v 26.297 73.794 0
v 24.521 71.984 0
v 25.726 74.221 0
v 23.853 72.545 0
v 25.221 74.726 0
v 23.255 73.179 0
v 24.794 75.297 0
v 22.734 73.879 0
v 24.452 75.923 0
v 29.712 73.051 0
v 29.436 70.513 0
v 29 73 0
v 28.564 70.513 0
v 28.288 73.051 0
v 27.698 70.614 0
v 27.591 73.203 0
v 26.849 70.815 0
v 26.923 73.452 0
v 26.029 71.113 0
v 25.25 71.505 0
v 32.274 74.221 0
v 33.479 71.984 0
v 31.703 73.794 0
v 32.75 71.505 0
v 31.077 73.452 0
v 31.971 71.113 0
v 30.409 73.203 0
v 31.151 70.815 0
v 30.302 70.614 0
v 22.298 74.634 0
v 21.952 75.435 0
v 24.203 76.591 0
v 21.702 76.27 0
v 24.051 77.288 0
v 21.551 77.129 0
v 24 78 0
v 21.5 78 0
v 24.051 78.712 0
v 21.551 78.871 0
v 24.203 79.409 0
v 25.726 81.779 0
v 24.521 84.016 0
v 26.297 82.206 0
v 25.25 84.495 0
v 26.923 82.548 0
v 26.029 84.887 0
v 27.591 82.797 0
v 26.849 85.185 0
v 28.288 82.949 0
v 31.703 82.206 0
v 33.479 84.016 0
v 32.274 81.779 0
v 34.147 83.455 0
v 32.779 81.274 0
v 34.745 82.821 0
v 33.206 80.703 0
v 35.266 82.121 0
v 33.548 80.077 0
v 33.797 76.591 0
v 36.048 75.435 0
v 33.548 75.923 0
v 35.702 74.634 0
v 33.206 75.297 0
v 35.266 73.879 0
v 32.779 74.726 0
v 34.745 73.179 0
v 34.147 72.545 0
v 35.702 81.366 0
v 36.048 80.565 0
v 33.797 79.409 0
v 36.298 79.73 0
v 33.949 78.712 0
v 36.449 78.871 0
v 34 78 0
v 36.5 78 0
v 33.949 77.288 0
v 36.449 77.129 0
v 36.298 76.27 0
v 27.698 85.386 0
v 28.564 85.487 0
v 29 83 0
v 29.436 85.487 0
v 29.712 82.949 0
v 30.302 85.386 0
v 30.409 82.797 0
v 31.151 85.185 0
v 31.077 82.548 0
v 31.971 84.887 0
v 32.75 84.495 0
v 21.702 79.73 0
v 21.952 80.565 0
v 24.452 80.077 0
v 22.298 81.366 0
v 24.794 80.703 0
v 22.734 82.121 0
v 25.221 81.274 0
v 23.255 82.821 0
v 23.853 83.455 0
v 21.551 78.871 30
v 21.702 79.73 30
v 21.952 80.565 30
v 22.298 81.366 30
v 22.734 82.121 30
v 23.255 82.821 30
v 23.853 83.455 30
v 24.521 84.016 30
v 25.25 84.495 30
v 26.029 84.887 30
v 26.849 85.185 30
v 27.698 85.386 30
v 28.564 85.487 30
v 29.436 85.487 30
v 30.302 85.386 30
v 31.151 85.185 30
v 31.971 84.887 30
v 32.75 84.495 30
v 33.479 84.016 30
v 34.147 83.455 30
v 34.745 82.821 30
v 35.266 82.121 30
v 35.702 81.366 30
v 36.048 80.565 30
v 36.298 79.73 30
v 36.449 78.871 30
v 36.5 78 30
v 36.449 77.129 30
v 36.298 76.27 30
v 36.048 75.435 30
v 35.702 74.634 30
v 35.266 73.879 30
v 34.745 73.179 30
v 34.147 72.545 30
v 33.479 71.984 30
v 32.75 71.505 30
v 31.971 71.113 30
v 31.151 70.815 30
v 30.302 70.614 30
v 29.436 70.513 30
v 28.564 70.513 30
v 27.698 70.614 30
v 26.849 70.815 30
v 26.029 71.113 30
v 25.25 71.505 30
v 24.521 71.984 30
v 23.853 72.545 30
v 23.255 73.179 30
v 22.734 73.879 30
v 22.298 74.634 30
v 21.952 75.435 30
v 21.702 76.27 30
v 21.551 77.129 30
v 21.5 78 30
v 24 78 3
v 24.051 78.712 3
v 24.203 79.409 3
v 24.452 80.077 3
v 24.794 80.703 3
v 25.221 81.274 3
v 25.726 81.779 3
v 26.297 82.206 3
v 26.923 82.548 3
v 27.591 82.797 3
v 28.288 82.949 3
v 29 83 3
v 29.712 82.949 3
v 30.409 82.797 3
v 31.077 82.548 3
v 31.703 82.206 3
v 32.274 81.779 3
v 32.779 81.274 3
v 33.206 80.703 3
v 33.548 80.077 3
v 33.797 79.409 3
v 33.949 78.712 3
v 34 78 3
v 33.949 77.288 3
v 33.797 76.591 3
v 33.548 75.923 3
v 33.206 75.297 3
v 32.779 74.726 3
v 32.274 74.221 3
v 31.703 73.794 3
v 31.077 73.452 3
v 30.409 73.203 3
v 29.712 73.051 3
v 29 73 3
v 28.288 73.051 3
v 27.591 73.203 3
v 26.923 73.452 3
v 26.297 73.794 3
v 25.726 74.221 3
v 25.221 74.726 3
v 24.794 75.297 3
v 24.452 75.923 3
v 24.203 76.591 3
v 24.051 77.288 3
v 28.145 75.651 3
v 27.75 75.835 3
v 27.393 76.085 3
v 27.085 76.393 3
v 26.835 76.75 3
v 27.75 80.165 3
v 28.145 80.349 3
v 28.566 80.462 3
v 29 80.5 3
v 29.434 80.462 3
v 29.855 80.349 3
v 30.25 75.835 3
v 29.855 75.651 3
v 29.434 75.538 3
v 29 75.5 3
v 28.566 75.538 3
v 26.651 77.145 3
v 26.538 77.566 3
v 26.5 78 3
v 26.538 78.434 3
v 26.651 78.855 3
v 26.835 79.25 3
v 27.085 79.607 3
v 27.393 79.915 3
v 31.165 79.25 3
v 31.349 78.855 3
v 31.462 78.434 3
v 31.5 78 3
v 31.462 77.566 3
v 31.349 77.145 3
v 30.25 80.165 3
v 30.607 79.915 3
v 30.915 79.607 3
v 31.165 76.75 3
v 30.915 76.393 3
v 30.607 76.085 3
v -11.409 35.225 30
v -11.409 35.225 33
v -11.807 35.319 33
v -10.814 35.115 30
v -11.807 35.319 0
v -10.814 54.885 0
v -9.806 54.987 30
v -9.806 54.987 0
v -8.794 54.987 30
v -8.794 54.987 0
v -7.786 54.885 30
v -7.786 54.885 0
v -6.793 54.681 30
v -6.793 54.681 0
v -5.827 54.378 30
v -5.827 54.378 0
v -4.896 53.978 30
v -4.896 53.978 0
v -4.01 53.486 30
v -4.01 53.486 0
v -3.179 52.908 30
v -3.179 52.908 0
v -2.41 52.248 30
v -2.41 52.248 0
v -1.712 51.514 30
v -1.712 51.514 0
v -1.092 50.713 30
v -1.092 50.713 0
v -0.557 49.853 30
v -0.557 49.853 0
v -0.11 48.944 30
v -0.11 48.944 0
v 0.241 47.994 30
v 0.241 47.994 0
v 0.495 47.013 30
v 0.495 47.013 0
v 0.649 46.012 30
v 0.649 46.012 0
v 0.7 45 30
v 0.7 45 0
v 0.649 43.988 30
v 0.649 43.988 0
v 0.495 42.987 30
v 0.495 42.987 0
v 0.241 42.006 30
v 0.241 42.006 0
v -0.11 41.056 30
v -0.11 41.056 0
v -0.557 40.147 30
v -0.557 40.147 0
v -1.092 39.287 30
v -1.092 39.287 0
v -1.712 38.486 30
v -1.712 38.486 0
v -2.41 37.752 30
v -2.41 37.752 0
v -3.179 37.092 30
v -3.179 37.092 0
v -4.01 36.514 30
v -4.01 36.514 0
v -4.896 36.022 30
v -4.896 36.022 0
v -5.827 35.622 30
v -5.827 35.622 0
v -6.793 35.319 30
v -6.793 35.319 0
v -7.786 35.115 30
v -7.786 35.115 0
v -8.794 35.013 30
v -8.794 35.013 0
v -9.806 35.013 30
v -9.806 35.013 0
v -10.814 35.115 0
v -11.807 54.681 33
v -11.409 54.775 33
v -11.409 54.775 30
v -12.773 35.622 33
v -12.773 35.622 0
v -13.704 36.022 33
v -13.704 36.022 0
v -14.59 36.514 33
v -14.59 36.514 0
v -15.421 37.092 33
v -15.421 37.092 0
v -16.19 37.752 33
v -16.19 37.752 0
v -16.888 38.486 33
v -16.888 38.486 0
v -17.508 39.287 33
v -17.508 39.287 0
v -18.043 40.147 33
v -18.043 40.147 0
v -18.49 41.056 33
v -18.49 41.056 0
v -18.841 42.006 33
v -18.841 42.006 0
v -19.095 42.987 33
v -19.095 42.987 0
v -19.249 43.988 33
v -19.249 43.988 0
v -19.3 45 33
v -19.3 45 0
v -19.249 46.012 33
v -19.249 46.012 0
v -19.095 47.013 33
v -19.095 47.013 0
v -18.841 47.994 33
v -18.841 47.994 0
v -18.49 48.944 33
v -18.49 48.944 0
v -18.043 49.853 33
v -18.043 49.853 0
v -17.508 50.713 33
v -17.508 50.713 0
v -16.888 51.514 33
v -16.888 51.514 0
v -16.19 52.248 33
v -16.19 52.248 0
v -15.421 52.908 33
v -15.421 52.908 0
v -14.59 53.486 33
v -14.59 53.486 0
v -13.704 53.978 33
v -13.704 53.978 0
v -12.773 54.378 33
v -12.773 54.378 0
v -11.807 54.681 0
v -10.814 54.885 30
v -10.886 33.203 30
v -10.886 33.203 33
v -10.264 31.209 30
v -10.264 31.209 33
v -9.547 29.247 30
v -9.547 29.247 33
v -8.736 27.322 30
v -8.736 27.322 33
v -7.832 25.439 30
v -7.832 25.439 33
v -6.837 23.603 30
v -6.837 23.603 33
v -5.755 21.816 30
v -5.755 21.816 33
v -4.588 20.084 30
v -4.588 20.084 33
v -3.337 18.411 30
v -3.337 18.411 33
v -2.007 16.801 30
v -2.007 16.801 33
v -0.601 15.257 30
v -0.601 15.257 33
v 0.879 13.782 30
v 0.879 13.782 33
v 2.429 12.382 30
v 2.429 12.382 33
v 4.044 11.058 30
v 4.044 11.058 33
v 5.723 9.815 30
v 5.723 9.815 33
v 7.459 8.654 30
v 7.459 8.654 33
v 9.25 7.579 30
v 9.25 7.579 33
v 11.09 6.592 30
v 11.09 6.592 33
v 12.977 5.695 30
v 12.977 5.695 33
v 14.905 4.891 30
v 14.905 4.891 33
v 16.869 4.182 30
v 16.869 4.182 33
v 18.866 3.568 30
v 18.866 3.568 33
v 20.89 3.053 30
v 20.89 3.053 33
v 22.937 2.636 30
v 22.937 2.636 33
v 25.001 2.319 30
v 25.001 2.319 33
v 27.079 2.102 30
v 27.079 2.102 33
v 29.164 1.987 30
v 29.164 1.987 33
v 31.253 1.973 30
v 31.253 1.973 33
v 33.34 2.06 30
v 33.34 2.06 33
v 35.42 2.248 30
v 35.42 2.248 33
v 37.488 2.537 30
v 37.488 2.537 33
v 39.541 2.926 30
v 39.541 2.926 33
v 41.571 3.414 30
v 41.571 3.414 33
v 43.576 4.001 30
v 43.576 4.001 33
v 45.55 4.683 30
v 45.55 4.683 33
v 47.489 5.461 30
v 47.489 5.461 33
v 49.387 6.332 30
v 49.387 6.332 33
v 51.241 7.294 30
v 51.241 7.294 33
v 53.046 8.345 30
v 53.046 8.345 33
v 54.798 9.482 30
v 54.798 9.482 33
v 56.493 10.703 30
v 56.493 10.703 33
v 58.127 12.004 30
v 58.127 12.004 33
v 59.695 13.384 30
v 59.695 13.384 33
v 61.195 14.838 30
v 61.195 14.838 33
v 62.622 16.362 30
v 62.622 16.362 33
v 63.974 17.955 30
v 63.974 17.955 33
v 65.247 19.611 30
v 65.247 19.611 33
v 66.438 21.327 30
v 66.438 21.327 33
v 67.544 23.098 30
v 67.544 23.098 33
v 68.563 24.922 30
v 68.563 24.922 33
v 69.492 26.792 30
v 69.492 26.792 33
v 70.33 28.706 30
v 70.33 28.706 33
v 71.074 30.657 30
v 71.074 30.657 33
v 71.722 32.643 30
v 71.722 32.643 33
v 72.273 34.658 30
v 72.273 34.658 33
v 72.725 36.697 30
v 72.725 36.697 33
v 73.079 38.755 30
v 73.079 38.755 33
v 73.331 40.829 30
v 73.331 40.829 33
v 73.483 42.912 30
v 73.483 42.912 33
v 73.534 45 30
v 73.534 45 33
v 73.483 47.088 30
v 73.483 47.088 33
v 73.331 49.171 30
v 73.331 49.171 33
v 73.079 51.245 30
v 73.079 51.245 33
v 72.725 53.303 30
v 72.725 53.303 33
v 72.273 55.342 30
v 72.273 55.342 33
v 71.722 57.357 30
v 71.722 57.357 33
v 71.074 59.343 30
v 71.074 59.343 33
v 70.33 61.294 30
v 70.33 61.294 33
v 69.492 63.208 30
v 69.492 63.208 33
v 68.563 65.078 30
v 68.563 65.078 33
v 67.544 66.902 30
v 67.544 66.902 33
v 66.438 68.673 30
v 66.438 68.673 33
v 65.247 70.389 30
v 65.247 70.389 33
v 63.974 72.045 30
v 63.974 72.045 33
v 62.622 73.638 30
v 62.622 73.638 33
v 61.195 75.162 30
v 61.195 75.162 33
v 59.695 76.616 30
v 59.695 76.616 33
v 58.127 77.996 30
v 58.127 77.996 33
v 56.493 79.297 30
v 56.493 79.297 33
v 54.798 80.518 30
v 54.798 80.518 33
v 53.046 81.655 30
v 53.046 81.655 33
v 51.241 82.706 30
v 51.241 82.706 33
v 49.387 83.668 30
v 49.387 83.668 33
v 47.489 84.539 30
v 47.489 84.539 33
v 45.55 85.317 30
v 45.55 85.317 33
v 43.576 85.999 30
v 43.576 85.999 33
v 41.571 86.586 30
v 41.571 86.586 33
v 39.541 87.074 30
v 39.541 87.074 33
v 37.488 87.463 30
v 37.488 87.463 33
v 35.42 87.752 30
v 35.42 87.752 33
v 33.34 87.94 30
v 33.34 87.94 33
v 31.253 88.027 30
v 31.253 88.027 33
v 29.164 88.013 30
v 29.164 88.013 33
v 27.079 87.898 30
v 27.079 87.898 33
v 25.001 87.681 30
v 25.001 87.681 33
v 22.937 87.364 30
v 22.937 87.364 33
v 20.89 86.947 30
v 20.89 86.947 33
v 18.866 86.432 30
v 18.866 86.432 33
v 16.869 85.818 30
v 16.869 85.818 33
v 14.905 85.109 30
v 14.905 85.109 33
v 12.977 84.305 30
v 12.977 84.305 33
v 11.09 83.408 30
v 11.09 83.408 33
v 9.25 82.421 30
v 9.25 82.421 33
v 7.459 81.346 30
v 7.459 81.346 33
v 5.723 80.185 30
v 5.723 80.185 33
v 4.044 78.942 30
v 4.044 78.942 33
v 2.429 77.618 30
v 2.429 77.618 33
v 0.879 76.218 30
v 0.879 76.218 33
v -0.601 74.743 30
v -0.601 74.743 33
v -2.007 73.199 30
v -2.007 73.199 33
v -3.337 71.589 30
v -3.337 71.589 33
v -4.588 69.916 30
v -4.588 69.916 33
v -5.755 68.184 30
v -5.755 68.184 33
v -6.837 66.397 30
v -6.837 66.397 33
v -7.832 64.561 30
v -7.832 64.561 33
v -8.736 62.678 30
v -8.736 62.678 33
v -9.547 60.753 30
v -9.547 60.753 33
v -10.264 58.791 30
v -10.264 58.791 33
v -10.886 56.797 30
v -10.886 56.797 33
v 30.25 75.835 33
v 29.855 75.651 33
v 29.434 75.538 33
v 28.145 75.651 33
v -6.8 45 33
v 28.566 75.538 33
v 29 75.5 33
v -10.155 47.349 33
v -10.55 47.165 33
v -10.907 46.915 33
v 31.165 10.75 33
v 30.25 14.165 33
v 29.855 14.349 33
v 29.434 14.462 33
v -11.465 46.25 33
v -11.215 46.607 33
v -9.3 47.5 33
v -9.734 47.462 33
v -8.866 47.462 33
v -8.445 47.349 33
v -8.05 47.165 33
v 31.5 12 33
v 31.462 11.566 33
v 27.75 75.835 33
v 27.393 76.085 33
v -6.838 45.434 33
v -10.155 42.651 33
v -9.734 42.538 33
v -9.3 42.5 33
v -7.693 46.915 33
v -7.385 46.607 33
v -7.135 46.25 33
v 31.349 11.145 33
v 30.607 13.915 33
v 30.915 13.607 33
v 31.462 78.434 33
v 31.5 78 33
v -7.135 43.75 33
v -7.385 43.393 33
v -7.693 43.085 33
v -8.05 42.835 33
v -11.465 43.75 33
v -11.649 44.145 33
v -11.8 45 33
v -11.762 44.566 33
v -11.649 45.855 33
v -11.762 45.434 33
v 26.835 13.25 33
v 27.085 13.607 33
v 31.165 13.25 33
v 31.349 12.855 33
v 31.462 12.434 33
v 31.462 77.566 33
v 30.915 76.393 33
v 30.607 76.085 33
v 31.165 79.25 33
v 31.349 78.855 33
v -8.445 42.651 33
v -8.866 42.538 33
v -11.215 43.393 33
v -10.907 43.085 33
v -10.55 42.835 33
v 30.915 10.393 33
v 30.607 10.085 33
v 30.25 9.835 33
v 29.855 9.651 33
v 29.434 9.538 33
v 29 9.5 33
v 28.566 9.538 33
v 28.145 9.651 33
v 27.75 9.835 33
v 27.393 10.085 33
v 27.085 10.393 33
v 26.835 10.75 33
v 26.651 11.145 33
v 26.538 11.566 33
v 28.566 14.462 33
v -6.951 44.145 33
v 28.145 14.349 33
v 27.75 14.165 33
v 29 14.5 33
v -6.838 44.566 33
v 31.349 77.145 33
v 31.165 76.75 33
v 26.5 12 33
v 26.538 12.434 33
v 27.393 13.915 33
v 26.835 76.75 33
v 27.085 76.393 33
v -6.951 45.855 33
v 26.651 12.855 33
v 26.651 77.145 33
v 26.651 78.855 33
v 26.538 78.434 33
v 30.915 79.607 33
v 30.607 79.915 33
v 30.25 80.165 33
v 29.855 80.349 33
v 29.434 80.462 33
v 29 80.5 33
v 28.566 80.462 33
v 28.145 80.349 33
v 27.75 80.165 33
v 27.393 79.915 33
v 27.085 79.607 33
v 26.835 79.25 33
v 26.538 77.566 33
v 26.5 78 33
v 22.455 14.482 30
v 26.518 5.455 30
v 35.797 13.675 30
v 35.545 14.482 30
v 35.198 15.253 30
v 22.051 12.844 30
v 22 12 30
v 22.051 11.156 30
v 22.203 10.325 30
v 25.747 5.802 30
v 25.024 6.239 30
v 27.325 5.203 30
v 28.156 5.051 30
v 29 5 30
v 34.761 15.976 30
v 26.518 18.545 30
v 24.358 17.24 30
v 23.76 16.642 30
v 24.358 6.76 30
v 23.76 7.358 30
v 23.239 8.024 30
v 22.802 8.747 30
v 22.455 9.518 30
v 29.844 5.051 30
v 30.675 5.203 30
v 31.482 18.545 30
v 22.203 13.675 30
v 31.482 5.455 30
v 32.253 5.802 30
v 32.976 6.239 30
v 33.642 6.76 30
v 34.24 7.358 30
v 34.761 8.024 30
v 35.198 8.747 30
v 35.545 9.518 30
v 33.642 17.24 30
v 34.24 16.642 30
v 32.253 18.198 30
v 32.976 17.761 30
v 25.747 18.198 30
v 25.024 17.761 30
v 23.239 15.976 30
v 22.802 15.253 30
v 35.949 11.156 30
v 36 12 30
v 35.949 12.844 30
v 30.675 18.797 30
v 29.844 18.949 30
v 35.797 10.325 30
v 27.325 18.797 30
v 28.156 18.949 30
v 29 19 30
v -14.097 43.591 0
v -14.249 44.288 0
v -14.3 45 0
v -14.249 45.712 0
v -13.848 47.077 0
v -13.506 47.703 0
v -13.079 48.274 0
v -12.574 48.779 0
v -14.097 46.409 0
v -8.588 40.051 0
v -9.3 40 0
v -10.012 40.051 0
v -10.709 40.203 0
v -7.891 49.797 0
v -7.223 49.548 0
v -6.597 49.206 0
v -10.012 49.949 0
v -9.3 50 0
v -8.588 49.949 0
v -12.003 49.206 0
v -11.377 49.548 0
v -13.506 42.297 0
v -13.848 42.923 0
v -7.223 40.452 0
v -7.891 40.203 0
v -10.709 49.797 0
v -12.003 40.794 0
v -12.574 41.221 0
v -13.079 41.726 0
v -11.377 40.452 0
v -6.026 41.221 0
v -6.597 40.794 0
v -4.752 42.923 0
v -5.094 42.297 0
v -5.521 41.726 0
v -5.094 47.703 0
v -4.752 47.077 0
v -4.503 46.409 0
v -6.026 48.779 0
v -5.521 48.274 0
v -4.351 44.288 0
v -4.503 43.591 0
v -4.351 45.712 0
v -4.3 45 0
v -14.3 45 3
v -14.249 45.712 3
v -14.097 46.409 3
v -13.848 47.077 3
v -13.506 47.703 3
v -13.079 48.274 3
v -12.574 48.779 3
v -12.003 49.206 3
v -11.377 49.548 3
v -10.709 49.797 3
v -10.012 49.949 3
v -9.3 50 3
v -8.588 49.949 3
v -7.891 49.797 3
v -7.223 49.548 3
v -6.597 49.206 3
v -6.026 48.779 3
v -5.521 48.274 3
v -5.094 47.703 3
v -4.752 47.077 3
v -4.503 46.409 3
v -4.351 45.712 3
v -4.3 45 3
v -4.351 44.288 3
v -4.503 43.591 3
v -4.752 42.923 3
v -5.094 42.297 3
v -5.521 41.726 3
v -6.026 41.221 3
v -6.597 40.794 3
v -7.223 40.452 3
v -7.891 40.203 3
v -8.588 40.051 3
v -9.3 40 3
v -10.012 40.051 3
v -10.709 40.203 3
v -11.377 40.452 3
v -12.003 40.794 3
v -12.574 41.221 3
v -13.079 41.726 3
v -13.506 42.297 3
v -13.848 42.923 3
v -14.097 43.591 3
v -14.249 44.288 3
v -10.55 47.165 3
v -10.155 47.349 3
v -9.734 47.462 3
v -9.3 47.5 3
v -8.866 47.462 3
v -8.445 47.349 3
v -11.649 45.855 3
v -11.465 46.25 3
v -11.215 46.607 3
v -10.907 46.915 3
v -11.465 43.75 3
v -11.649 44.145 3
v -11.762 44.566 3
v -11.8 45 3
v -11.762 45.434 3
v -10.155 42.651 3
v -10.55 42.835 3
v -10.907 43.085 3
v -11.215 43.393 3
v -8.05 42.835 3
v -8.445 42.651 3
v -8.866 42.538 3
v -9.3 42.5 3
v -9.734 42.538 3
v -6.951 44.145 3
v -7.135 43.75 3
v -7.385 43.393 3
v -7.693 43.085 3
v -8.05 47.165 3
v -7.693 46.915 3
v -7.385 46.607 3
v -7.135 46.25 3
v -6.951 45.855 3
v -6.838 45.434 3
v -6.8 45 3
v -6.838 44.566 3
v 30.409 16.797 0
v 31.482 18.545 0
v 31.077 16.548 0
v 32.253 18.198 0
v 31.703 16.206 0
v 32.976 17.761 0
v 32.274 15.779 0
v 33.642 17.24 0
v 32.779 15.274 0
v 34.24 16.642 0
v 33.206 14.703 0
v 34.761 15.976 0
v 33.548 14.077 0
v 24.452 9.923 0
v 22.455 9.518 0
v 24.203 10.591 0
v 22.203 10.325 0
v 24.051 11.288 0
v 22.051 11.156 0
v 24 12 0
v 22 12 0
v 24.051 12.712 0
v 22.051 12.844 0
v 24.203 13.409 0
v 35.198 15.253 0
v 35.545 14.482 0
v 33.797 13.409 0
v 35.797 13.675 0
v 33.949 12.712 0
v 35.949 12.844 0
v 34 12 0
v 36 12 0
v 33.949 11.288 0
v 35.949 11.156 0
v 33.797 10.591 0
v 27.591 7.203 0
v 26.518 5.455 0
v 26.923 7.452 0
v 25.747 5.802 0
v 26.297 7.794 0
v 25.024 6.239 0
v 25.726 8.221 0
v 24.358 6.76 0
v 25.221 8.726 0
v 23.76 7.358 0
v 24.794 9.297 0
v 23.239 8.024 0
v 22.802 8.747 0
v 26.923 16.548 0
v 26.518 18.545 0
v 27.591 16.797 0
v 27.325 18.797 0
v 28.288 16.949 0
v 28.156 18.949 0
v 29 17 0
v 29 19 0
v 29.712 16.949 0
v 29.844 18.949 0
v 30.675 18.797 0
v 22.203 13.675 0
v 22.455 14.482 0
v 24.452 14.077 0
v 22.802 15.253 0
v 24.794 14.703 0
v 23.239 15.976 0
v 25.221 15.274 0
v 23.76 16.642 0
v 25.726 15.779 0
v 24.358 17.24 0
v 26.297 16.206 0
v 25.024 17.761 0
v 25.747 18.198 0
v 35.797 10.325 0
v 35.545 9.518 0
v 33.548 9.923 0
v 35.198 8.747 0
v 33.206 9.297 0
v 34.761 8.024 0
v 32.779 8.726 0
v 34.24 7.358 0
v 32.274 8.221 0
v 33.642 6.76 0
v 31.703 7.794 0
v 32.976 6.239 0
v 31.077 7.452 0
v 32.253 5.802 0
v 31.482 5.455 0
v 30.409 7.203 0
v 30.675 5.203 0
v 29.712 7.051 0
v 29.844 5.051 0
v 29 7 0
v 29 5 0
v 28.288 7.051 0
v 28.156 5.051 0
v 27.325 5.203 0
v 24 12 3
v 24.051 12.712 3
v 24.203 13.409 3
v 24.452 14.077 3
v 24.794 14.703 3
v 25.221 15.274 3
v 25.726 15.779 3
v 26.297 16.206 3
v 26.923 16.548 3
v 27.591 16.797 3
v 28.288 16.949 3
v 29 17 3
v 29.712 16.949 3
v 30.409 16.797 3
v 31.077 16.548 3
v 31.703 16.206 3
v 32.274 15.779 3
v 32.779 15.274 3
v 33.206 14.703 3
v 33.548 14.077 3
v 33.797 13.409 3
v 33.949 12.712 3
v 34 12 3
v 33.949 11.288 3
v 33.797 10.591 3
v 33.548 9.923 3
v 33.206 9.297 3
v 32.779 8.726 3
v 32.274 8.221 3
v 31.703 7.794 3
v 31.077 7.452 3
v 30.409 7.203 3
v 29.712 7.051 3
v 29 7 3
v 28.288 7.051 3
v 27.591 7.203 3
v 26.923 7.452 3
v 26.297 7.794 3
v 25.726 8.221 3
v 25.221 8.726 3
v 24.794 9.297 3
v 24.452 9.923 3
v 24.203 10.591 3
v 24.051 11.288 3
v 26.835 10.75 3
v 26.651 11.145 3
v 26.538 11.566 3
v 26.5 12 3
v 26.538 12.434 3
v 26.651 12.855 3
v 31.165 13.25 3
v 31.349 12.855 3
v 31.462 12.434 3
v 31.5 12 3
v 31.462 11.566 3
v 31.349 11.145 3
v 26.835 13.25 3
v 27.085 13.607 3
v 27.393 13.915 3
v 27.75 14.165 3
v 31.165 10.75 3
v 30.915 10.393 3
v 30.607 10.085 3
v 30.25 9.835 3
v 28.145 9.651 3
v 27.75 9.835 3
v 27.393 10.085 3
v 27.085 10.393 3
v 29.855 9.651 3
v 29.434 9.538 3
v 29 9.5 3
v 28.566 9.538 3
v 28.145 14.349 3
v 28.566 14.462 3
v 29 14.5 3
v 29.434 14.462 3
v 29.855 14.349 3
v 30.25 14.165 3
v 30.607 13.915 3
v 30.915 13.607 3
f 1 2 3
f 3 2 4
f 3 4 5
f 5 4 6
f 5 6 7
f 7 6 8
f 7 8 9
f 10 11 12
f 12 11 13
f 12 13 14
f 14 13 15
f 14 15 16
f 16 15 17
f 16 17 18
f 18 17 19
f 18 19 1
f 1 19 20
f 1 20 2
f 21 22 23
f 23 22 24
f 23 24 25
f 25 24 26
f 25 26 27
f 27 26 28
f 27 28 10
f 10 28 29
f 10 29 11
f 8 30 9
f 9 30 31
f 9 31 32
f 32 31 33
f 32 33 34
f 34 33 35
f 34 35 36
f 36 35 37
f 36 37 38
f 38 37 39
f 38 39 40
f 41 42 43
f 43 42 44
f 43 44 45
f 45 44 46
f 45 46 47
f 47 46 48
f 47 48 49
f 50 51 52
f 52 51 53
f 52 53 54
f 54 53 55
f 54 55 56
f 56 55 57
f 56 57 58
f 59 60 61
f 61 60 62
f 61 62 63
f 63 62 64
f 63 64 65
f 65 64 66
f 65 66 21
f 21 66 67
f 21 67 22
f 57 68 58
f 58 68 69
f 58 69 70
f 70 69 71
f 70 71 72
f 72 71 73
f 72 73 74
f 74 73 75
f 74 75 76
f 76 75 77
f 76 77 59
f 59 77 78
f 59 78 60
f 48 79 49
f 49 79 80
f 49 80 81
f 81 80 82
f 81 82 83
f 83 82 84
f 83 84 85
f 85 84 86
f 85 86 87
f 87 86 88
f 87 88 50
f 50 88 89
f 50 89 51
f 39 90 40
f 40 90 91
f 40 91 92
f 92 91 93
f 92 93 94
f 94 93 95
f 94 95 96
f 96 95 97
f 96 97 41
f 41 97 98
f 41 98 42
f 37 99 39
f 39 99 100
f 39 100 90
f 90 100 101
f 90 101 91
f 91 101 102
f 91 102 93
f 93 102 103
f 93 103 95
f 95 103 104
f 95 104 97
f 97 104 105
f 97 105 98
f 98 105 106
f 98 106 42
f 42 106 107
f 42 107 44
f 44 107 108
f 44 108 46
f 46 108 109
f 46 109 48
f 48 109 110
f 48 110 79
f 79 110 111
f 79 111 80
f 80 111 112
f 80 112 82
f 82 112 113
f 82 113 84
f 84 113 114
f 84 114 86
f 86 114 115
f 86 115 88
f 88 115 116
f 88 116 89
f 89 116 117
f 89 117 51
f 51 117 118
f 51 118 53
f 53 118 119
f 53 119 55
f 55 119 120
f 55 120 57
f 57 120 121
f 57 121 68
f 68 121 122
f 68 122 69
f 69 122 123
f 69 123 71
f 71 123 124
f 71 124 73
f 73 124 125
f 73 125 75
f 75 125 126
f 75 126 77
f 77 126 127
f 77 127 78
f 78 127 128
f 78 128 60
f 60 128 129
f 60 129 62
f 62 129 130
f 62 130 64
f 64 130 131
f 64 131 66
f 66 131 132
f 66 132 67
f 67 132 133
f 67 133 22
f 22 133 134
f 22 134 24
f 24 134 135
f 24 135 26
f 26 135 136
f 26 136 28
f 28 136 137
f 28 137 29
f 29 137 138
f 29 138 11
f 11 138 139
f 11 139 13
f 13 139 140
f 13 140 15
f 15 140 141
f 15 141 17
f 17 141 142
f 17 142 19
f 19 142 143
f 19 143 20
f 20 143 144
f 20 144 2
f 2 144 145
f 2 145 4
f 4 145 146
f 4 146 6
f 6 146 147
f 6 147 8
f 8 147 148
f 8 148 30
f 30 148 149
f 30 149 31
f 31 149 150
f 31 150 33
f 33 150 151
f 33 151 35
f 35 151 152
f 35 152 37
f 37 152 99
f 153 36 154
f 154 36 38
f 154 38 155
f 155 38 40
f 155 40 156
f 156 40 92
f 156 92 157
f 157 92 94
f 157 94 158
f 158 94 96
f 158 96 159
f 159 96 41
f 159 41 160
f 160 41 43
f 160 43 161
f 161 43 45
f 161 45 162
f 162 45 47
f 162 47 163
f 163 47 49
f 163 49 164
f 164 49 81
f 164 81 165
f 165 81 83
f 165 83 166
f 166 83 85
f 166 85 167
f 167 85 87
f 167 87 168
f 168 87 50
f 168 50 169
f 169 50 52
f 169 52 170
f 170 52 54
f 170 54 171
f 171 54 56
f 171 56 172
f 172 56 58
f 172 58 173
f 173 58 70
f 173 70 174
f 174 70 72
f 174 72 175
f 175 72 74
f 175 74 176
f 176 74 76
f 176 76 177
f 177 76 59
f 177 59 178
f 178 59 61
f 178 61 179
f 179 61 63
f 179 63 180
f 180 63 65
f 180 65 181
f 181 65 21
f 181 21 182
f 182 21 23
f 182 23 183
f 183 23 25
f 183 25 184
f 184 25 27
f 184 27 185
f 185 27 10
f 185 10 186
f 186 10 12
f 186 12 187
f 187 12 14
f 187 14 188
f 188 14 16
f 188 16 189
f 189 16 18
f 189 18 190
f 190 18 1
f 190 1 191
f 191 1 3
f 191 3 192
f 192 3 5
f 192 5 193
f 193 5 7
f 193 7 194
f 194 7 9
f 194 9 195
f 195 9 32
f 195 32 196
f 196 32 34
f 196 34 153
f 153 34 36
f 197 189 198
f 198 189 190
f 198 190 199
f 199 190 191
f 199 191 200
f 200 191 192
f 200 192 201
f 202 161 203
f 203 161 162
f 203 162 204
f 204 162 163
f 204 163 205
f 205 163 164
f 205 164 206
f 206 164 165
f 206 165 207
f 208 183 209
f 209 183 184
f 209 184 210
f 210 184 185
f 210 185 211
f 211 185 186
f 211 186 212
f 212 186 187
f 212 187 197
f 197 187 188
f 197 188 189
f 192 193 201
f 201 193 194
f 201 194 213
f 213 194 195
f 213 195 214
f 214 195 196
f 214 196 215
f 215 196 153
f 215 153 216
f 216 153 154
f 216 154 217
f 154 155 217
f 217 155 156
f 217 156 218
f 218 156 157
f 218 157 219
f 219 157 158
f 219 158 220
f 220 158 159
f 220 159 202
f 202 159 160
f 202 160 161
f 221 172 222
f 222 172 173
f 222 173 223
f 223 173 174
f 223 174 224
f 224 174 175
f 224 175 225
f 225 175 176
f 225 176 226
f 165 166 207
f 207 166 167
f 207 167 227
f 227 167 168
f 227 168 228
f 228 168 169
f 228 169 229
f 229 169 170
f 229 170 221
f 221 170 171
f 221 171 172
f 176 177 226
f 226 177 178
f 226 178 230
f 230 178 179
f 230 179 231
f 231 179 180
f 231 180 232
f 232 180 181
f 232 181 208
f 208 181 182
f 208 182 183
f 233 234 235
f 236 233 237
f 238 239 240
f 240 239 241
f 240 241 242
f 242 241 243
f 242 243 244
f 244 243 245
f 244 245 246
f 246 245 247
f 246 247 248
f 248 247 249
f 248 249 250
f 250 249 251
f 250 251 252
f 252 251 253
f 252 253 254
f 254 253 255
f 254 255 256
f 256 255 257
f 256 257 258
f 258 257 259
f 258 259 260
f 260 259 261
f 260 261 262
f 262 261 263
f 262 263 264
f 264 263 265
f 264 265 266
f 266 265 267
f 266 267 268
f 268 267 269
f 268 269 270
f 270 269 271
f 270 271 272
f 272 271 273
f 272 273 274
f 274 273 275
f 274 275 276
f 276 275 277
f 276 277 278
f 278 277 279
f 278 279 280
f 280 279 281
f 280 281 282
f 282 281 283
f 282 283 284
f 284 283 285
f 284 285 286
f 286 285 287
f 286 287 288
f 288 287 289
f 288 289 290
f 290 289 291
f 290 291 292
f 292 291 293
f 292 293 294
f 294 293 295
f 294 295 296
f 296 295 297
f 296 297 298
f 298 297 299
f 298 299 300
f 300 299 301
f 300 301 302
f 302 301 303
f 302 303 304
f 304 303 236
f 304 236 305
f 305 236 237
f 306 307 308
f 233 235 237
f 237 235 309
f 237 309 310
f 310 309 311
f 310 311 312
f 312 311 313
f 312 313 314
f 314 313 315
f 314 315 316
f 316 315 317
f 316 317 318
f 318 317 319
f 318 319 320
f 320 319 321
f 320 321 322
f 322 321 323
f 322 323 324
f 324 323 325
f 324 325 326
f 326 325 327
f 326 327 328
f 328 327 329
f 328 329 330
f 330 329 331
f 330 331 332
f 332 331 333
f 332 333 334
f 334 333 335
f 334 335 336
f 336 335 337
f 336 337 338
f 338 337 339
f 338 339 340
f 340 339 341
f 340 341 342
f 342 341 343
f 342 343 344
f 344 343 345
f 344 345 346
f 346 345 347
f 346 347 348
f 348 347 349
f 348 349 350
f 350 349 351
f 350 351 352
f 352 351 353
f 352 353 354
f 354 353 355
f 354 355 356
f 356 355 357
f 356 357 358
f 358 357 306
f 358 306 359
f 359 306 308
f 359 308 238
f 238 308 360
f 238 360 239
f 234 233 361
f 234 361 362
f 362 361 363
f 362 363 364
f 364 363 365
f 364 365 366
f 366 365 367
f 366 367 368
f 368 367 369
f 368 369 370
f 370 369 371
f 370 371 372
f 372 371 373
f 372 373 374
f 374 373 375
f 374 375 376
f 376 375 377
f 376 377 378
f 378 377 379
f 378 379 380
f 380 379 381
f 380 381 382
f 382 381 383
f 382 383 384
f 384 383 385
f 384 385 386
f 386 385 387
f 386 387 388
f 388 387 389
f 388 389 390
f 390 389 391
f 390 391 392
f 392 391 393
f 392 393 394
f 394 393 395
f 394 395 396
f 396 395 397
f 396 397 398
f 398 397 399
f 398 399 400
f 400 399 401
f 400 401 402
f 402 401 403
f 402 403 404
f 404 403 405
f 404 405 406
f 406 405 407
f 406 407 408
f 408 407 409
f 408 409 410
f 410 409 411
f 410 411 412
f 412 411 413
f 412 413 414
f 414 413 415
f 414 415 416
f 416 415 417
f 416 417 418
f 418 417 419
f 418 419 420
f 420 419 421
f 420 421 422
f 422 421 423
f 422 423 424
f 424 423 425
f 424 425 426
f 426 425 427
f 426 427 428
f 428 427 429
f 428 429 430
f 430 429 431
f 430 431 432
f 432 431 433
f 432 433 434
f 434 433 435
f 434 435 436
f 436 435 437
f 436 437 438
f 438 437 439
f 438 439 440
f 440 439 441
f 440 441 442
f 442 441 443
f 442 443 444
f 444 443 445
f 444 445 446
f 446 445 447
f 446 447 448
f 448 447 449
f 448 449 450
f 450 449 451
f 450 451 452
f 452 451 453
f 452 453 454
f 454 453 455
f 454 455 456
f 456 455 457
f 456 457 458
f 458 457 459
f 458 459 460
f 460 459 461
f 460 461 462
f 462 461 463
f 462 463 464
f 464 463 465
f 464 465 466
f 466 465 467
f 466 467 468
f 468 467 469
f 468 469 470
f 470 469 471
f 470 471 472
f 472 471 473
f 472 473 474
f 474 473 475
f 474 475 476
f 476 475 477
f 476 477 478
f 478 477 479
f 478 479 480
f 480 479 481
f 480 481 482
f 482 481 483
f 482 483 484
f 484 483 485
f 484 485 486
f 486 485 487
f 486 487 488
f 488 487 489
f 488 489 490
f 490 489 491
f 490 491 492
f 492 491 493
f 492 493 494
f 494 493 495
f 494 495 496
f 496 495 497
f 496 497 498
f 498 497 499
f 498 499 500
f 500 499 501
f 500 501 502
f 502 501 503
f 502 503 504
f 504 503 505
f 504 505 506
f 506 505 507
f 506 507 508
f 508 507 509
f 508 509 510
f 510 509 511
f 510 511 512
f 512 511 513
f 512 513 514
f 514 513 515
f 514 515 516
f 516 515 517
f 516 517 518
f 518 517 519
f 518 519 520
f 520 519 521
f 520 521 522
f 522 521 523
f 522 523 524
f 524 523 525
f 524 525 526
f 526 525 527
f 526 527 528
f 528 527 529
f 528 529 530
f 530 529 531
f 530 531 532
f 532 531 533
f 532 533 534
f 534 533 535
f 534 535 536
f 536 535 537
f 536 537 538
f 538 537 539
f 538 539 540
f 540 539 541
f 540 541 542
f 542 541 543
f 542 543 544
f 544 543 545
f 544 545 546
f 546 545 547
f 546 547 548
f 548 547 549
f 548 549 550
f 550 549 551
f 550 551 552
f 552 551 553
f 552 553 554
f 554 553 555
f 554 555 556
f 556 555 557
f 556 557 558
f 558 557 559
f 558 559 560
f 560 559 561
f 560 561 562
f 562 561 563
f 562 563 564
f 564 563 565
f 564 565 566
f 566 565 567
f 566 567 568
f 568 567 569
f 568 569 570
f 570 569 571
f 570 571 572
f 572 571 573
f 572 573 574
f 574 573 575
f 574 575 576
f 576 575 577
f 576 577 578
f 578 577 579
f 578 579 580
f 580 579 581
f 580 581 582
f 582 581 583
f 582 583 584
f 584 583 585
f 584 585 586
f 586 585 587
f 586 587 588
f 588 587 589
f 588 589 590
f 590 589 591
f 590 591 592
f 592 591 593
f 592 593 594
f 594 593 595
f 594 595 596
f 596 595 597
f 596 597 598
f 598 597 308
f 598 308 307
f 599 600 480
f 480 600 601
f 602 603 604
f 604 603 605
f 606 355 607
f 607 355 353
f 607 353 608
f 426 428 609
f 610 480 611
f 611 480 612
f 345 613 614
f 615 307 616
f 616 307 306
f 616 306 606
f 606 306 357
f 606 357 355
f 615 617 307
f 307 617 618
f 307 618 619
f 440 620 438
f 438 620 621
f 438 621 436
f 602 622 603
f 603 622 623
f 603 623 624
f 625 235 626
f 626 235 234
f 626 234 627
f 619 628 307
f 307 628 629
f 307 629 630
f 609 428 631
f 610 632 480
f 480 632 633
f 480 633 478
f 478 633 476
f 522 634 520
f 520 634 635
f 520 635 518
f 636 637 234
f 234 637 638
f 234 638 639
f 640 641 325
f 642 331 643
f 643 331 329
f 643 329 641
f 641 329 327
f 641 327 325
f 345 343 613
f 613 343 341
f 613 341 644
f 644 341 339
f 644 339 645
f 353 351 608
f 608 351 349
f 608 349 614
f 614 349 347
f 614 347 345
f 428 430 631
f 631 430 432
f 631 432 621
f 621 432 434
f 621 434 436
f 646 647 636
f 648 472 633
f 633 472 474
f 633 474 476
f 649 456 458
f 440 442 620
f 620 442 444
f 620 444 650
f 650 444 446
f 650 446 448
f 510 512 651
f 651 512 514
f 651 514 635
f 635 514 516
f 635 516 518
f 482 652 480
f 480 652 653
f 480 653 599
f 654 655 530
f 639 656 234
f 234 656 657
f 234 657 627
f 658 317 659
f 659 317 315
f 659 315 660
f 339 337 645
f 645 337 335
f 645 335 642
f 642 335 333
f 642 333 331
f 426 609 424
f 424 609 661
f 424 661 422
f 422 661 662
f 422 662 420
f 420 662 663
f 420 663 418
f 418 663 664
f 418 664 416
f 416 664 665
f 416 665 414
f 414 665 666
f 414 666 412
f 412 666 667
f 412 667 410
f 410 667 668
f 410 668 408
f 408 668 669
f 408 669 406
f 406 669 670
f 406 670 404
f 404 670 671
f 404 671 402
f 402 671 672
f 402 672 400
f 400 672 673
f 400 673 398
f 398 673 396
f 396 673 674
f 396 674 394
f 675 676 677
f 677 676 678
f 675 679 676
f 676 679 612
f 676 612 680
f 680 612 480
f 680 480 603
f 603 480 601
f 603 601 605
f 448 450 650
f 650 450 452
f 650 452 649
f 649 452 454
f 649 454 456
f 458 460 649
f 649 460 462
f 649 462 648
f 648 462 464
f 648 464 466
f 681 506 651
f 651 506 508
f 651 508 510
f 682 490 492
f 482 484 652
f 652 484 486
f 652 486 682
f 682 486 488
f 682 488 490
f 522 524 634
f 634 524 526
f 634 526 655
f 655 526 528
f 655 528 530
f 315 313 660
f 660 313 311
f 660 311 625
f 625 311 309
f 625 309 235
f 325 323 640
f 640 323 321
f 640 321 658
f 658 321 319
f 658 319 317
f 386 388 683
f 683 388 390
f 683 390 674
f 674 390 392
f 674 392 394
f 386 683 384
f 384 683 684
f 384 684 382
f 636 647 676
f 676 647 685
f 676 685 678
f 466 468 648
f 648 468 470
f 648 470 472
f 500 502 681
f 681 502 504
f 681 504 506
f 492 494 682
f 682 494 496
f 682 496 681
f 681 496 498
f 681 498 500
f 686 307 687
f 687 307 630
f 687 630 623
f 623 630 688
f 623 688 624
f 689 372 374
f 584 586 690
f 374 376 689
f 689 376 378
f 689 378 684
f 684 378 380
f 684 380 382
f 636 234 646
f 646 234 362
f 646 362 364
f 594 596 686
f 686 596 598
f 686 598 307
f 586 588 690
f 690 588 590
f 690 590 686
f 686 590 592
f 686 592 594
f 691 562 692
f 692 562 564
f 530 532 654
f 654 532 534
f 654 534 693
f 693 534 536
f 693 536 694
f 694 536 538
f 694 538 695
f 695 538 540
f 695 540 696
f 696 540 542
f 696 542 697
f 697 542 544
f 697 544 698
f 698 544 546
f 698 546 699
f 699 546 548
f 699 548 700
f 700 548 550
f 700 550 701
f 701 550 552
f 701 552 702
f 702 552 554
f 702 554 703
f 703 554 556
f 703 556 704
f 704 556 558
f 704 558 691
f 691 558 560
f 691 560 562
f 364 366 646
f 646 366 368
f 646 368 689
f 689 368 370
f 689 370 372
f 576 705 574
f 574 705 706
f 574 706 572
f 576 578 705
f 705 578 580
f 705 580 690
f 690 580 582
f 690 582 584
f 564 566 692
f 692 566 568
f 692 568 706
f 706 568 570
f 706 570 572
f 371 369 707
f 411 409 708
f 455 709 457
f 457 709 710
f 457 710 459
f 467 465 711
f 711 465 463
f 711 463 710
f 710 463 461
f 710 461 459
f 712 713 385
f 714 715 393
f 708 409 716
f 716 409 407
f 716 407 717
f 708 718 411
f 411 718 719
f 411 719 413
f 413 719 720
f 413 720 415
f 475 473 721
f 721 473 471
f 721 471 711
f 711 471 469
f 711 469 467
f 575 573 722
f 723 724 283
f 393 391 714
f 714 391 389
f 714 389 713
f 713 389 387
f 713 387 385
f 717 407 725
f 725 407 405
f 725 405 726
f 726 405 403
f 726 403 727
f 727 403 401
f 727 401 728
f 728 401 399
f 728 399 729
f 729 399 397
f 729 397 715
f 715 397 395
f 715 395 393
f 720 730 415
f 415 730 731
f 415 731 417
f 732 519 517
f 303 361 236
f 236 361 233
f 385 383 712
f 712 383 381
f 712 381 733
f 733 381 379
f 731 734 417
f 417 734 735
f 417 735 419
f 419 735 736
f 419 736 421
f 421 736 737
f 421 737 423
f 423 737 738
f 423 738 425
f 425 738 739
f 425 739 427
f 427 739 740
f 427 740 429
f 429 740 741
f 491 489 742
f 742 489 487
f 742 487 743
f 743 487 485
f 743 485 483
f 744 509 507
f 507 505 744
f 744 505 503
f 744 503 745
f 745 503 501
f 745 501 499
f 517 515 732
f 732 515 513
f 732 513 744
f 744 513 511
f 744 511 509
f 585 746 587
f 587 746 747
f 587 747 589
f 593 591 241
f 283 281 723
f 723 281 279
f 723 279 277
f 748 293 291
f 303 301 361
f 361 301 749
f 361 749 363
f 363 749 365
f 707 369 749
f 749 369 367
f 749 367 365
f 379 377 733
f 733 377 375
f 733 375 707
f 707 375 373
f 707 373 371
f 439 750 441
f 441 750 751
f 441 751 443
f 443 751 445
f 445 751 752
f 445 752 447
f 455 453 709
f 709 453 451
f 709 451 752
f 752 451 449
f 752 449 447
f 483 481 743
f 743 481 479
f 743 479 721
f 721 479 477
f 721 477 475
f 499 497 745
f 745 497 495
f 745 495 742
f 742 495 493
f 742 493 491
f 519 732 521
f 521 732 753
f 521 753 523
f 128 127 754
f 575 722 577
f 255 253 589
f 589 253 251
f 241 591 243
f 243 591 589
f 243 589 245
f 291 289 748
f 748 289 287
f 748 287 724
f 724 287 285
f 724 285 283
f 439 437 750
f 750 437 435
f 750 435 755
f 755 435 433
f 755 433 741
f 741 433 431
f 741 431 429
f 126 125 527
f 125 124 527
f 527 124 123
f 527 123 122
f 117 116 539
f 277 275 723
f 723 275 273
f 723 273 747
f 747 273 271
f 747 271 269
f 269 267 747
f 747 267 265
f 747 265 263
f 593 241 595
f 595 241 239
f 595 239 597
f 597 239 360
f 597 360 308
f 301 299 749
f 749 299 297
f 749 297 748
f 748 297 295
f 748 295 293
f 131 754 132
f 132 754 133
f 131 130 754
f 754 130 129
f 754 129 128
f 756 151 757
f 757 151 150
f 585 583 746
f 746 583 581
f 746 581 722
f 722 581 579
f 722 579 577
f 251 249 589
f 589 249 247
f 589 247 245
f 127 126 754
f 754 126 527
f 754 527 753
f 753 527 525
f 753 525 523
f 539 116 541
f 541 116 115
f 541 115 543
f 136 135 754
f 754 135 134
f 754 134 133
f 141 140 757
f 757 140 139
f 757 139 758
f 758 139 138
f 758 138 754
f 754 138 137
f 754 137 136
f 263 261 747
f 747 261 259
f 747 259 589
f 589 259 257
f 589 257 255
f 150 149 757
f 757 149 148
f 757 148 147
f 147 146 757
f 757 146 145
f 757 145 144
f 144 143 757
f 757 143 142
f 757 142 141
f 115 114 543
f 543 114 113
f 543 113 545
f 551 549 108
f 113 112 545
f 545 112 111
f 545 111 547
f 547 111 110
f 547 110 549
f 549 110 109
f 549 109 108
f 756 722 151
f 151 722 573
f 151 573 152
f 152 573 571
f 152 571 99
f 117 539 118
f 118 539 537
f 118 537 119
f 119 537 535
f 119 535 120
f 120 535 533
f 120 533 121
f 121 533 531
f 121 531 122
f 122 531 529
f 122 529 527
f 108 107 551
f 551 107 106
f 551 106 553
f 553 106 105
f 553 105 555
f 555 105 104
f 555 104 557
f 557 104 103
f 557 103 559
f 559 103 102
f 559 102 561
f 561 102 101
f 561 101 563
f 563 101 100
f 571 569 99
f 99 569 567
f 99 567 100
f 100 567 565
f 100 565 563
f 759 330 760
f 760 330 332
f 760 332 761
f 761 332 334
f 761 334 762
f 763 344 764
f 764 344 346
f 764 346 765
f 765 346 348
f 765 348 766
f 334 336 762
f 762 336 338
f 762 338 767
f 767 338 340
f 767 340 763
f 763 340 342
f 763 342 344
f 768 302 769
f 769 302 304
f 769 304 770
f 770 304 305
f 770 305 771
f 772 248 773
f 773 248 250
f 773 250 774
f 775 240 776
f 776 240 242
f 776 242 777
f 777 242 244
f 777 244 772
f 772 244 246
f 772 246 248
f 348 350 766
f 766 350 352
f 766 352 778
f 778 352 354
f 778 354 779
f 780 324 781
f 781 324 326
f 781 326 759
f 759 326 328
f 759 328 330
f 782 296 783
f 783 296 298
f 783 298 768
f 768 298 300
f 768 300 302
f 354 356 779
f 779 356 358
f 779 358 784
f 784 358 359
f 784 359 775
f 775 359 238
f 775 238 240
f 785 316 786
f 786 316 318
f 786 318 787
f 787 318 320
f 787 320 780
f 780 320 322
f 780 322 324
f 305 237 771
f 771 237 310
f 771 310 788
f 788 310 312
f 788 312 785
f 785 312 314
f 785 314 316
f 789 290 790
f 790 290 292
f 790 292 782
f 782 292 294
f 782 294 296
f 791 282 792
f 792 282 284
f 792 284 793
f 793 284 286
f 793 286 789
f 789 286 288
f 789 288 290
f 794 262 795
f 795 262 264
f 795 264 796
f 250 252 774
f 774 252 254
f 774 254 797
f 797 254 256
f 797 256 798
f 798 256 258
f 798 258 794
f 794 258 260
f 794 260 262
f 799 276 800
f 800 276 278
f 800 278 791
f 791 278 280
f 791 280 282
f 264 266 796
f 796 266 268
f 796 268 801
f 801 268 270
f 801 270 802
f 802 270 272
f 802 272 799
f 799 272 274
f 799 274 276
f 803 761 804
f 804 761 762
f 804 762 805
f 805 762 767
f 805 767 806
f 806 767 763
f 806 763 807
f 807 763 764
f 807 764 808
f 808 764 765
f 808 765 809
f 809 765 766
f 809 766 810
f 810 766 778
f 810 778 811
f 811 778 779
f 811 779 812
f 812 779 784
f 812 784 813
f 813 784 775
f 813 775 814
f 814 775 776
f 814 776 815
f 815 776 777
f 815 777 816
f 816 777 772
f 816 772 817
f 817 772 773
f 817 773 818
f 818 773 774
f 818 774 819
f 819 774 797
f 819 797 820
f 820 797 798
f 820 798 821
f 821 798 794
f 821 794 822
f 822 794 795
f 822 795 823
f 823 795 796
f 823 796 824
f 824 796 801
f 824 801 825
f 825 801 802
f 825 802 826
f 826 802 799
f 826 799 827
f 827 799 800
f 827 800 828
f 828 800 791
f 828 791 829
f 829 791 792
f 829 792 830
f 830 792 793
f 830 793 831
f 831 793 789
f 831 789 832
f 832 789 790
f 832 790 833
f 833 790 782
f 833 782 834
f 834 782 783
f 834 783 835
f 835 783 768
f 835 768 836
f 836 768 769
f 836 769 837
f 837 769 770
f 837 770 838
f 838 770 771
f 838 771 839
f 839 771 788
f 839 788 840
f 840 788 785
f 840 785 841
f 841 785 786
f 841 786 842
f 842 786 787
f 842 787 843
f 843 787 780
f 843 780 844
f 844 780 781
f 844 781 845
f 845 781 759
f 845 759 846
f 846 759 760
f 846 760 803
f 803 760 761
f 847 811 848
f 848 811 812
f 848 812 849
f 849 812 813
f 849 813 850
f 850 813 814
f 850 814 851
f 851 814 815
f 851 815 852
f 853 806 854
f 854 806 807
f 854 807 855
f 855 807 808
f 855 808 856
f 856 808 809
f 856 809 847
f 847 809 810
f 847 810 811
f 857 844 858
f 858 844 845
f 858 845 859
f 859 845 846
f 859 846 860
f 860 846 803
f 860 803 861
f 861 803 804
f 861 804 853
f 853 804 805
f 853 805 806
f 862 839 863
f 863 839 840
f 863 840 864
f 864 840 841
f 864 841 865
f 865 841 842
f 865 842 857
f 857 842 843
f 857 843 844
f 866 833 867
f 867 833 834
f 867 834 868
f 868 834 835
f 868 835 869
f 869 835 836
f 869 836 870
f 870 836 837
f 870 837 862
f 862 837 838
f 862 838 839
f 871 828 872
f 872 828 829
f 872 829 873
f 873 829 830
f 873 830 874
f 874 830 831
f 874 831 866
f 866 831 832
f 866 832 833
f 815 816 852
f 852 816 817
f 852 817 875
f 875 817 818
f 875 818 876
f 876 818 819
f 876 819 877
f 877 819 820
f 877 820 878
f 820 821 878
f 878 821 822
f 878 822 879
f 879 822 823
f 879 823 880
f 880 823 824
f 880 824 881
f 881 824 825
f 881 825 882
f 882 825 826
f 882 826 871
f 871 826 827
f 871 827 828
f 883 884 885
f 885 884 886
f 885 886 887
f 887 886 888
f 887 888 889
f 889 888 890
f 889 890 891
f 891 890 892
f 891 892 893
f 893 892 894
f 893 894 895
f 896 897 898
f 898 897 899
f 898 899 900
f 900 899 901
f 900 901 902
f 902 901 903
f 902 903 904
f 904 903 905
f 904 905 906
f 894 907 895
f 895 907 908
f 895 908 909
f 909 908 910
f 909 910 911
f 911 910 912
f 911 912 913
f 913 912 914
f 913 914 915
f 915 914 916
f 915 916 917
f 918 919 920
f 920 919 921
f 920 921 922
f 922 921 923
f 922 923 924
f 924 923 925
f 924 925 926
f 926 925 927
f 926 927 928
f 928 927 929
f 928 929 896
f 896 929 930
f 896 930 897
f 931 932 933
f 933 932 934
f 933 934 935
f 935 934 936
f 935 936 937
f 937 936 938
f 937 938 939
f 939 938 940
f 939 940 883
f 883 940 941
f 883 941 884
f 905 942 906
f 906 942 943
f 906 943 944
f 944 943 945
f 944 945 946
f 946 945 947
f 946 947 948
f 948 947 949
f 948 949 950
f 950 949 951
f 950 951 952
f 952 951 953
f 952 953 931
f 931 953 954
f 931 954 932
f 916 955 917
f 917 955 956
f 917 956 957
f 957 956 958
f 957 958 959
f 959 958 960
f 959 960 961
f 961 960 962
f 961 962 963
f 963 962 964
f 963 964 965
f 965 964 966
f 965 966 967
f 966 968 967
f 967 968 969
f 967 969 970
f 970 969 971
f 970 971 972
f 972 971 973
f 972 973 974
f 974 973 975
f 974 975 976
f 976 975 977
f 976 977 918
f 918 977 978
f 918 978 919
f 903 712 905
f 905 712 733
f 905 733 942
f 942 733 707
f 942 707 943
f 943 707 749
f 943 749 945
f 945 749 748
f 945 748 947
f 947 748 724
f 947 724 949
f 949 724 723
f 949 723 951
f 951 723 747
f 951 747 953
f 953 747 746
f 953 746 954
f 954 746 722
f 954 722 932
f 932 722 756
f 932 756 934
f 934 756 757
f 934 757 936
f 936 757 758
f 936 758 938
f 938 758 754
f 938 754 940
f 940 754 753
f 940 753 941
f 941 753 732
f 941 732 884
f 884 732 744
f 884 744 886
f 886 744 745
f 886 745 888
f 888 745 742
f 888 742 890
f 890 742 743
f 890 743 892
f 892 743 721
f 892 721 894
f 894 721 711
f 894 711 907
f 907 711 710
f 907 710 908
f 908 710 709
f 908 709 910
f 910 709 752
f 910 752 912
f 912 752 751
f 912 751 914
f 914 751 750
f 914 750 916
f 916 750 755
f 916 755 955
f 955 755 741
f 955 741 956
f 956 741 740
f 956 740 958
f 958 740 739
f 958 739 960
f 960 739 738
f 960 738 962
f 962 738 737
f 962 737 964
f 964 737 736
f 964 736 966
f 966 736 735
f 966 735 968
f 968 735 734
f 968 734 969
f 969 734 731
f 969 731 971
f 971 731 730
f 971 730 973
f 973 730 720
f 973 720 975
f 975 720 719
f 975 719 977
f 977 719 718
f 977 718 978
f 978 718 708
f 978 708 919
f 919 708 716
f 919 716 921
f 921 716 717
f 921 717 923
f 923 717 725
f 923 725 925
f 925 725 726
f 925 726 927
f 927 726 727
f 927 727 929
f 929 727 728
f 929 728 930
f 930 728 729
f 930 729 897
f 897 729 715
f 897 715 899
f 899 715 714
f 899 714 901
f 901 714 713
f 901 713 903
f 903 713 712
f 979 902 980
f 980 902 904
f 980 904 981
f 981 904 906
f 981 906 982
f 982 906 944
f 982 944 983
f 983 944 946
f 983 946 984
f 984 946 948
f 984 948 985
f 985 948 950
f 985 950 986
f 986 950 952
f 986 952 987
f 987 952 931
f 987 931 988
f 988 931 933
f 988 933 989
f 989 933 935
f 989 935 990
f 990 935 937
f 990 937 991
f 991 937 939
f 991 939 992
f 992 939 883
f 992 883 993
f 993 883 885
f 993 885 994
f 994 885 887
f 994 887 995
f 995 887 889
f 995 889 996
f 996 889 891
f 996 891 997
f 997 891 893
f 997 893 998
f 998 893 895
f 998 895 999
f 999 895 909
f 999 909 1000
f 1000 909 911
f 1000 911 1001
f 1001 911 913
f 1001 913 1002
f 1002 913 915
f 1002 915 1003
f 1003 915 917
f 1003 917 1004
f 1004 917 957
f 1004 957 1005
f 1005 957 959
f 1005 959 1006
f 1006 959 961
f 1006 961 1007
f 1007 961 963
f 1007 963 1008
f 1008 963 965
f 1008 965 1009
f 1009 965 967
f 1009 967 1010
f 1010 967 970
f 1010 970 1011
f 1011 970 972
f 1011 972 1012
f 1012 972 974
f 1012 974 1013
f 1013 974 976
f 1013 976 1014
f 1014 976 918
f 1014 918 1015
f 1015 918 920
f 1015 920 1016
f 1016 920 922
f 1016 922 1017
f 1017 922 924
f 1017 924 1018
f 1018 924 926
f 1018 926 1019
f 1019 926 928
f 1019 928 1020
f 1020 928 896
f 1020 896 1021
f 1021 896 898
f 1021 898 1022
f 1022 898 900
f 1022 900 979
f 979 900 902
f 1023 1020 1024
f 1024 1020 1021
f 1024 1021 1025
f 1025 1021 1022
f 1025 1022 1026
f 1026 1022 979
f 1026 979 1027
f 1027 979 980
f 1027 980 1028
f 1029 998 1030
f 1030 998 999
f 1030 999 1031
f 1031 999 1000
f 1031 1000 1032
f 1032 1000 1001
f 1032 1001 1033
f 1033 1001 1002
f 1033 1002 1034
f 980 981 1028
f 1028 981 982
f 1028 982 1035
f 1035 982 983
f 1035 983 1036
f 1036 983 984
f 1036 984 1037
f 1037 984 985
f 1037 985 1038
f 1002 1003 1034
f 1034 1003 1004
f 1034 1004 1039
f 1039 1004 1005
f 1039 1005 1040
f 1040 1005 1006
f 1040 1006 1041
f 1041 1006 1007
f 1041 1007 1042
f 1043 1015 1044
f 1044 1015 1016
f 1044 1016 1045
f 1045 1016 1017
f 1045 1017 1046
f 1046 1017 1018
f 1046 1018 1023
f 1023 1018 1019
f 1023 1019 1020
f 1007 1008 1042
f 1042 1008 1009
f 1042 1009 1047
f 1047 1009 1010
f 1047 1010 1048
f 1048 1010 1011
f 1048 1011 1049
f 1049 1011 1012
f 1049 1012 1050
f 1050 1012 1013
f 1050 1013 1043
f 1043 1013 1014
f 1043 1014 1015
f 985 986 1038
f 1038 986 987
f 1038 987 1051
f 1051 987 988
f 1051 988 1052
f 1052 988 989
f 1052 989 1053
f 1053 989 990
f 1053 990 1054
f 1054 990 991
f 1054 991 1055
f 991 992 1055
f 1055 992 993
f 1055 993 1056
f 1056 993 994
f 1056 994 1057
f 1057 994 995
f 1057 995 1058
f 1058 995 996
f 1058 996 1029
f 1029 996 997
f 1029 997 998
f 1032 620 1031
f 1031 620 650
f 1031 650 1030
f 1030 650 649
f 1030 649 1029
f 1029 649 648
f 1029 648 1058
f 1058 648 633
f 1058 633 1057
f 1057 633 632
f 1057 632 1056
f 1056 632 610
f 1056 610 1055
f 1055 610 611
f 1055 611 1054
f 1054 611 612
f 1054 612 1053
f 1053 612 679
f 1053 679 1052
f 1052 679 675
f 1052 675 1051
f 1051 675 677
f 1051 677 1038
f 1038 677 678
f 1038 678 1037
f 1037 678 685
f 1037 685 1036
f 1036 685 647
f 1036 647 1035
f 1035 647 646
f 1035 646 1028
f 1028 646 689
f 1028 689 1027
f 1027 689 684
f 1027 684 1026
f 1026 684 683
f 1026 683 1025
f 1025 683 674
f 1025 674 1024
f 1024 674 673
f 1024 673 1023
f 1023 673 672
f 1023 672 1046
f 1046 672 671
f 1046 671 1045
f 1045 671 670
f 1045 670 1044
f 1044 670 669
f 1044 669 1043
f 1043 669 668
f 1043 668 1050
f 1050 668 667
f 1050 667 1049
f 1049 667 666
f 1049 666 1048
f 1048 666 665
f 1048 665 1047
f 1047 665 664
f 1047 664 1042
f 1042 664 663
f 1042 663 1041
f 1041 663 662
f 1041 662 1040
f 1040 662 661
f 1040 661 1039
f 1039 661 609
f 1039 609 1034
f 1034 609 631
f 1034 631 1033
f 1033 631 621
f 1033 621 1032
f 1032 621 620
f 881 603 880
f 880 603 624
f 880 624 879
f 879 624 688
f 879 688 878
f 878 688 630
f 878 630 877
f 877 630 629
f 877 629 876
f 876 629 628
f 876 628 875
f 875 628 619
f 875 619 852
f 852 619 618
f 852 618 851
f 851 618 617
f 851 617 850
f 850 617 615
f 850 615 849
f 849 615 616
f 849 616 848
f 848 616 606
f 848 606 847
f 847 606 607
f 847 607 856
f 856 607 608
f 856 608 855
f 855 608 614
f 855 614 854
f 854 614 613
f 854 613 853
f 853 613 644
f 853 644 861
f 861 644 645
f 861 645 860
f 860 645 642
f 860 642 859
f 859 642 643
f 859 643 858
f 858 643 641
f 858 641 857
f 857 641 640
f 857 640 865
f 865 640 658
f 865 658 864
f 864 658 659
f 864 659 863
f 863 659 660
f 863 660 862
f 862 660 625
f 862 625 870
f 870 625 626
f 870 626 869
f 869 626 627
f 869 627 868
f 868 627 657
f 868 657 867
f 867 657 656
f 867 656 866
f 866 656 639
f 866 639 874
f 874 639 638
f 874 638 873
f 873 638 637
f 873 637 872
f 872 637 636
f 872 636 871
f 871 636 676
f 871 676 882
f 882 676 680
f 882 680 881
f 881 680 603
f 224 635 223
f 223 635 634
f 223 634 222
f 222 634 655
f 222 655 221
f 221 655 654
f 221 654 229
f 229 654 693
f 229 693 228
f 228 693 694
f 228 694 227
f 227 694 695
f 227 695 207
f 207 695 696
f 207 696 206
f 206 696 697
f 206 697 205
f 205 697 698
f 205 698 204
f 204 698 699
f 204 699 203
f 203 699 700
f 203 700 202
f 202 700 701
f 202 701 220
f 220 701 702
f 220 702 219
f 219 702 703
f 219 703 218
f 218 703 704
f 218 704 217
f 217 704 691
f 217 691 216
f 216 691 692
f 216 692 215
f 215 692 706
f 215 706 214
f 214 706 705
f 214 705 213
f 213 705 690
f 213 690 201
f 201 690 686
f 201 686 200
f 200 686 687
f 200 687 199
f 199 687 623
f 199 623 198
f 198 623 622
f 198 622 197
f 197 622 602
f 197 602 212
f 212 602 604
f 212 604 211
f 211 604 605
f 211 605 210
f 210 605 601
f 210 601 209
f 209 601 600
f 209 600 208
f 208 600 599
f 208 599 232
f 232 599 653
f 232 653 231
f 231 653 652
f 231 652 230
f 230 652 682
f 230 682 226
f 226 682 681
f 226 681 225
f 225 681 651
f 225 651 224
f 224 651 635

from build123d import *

# Parameters (mm, degrees)
SKETCH1_R             = 7.5
SKETCH1_R_2           = 5
BOSS_EXTRUDE1_DEPTH   = 3
SKETCH1_R_3           = 10
BOSS_EXTRUDE1_2_DEPTH = 3
SKETCH1_R_4           = 7
BOSS_EXTRUDE1_3_DEPTH = 3
SKETCH3_R             = 7
SKETCH3_R_2           = 7.5
SKETCH3_R_3           = 10
BOSS_EXTRUDE2_DEPTH   = 27
BOSS_EXTRUDE3_DEPTH   = 3
SKETCH5_R             = 2.5
CUT_EXTRUDE1_DEPTH    = 34


with BuildPart() as part:
    # Sketch1 → Boss-Extrude1 (new body)
    with BuildSketch(Plane.XY):
        with Locations((29, 78)):
            Circle(SKETCH1_R)
        with Locations((29, 78)):
            Circle(SKETCH1_R_2, mode=Mode.SUBTRACT)
    extrude(amount=BOSS_EXTRUDE1_DEPTH)



with BuildPart() as body_2:
    # Sketch1 → Boss-Extrude1 2 (new body)
    with BuildSketch(Plane.XY):
        with Locations((-9.3, 45)):
            Circle(SKETCH1_R_3)
        with Locations((-9.3, 45)):
            Circle(SKETCH1_R_2, mode=Mode.SUBTRACT)
    extrude(amount=BOSS_EXTRUDE1_2_DEPTH)


with BuildPart() as body_3:
    # Sketch1 → Boss-Extrude1 3 (new body)
    with BuildSketch(Plane.XY):
        with Locations((29, 12)):
            Circle(SKETCH1_R_4)
        with Locations((29, 12)):
            Circle(SKETCH1_R_2, mode=Mode.SUBTRACT)
    extrude(amount=BOSS_EXTRUDE1_3_DEPTH)


with BuildPart() as part_1:
    add(part.part)

    add(body_2.part)  # Boss-Extrude2 merges body 2

    add(body_3.part)  # Boss-Extrude2 merges body 3
    # Sketch3 → Boss-Extrude2 (add)
    with BuildSketch(Plane.XY.offset(3)):
        with Locations((29, 12)):
            Circle(SKETCH3_R)
        with Locations((29, 78)):
            Circle(SKETCH3_R_2)
        with Locations((-9.3, 45)):
            Circle(SKETCH3_R_3)
    extrude(amount=BOSS_EXTRUDE2_DEPTH)

    # Sketch4 → Boss-Extrude3 (add)
    with BuildSketch(Plane.XY.offset(30)):
        with BuildLine():
            ThreePointArc((-11.409189276, 35.22496442), (73.534073318, 45), (-11.409189276, 54.77503558))
            ThreePointArc((-11.409189276, 54.77503558), (-19.3, 45), (-11.409189276, 35.22496442))
        make_face()
    extrude(amount=BOSS_EXTRUDE3_DEPTH)

    # Sketch5 → Cut-Extrude1 (cut, through all)
    with BuildSketch(Plane.XY.offset(33)):
        with Locations((-9.3, 45)):
            Circle(SKETCH5_R)
        with Locations((29, 12)):
            Circle(SKETCH5_R)
        with Locations((29, 78)):
            Circle(SKETCH5_R)
    extrude(amount=-CUT_EXTRUDE1_DEPTH, mode=Mode.SUBTRACT)


solid = part_1.part
